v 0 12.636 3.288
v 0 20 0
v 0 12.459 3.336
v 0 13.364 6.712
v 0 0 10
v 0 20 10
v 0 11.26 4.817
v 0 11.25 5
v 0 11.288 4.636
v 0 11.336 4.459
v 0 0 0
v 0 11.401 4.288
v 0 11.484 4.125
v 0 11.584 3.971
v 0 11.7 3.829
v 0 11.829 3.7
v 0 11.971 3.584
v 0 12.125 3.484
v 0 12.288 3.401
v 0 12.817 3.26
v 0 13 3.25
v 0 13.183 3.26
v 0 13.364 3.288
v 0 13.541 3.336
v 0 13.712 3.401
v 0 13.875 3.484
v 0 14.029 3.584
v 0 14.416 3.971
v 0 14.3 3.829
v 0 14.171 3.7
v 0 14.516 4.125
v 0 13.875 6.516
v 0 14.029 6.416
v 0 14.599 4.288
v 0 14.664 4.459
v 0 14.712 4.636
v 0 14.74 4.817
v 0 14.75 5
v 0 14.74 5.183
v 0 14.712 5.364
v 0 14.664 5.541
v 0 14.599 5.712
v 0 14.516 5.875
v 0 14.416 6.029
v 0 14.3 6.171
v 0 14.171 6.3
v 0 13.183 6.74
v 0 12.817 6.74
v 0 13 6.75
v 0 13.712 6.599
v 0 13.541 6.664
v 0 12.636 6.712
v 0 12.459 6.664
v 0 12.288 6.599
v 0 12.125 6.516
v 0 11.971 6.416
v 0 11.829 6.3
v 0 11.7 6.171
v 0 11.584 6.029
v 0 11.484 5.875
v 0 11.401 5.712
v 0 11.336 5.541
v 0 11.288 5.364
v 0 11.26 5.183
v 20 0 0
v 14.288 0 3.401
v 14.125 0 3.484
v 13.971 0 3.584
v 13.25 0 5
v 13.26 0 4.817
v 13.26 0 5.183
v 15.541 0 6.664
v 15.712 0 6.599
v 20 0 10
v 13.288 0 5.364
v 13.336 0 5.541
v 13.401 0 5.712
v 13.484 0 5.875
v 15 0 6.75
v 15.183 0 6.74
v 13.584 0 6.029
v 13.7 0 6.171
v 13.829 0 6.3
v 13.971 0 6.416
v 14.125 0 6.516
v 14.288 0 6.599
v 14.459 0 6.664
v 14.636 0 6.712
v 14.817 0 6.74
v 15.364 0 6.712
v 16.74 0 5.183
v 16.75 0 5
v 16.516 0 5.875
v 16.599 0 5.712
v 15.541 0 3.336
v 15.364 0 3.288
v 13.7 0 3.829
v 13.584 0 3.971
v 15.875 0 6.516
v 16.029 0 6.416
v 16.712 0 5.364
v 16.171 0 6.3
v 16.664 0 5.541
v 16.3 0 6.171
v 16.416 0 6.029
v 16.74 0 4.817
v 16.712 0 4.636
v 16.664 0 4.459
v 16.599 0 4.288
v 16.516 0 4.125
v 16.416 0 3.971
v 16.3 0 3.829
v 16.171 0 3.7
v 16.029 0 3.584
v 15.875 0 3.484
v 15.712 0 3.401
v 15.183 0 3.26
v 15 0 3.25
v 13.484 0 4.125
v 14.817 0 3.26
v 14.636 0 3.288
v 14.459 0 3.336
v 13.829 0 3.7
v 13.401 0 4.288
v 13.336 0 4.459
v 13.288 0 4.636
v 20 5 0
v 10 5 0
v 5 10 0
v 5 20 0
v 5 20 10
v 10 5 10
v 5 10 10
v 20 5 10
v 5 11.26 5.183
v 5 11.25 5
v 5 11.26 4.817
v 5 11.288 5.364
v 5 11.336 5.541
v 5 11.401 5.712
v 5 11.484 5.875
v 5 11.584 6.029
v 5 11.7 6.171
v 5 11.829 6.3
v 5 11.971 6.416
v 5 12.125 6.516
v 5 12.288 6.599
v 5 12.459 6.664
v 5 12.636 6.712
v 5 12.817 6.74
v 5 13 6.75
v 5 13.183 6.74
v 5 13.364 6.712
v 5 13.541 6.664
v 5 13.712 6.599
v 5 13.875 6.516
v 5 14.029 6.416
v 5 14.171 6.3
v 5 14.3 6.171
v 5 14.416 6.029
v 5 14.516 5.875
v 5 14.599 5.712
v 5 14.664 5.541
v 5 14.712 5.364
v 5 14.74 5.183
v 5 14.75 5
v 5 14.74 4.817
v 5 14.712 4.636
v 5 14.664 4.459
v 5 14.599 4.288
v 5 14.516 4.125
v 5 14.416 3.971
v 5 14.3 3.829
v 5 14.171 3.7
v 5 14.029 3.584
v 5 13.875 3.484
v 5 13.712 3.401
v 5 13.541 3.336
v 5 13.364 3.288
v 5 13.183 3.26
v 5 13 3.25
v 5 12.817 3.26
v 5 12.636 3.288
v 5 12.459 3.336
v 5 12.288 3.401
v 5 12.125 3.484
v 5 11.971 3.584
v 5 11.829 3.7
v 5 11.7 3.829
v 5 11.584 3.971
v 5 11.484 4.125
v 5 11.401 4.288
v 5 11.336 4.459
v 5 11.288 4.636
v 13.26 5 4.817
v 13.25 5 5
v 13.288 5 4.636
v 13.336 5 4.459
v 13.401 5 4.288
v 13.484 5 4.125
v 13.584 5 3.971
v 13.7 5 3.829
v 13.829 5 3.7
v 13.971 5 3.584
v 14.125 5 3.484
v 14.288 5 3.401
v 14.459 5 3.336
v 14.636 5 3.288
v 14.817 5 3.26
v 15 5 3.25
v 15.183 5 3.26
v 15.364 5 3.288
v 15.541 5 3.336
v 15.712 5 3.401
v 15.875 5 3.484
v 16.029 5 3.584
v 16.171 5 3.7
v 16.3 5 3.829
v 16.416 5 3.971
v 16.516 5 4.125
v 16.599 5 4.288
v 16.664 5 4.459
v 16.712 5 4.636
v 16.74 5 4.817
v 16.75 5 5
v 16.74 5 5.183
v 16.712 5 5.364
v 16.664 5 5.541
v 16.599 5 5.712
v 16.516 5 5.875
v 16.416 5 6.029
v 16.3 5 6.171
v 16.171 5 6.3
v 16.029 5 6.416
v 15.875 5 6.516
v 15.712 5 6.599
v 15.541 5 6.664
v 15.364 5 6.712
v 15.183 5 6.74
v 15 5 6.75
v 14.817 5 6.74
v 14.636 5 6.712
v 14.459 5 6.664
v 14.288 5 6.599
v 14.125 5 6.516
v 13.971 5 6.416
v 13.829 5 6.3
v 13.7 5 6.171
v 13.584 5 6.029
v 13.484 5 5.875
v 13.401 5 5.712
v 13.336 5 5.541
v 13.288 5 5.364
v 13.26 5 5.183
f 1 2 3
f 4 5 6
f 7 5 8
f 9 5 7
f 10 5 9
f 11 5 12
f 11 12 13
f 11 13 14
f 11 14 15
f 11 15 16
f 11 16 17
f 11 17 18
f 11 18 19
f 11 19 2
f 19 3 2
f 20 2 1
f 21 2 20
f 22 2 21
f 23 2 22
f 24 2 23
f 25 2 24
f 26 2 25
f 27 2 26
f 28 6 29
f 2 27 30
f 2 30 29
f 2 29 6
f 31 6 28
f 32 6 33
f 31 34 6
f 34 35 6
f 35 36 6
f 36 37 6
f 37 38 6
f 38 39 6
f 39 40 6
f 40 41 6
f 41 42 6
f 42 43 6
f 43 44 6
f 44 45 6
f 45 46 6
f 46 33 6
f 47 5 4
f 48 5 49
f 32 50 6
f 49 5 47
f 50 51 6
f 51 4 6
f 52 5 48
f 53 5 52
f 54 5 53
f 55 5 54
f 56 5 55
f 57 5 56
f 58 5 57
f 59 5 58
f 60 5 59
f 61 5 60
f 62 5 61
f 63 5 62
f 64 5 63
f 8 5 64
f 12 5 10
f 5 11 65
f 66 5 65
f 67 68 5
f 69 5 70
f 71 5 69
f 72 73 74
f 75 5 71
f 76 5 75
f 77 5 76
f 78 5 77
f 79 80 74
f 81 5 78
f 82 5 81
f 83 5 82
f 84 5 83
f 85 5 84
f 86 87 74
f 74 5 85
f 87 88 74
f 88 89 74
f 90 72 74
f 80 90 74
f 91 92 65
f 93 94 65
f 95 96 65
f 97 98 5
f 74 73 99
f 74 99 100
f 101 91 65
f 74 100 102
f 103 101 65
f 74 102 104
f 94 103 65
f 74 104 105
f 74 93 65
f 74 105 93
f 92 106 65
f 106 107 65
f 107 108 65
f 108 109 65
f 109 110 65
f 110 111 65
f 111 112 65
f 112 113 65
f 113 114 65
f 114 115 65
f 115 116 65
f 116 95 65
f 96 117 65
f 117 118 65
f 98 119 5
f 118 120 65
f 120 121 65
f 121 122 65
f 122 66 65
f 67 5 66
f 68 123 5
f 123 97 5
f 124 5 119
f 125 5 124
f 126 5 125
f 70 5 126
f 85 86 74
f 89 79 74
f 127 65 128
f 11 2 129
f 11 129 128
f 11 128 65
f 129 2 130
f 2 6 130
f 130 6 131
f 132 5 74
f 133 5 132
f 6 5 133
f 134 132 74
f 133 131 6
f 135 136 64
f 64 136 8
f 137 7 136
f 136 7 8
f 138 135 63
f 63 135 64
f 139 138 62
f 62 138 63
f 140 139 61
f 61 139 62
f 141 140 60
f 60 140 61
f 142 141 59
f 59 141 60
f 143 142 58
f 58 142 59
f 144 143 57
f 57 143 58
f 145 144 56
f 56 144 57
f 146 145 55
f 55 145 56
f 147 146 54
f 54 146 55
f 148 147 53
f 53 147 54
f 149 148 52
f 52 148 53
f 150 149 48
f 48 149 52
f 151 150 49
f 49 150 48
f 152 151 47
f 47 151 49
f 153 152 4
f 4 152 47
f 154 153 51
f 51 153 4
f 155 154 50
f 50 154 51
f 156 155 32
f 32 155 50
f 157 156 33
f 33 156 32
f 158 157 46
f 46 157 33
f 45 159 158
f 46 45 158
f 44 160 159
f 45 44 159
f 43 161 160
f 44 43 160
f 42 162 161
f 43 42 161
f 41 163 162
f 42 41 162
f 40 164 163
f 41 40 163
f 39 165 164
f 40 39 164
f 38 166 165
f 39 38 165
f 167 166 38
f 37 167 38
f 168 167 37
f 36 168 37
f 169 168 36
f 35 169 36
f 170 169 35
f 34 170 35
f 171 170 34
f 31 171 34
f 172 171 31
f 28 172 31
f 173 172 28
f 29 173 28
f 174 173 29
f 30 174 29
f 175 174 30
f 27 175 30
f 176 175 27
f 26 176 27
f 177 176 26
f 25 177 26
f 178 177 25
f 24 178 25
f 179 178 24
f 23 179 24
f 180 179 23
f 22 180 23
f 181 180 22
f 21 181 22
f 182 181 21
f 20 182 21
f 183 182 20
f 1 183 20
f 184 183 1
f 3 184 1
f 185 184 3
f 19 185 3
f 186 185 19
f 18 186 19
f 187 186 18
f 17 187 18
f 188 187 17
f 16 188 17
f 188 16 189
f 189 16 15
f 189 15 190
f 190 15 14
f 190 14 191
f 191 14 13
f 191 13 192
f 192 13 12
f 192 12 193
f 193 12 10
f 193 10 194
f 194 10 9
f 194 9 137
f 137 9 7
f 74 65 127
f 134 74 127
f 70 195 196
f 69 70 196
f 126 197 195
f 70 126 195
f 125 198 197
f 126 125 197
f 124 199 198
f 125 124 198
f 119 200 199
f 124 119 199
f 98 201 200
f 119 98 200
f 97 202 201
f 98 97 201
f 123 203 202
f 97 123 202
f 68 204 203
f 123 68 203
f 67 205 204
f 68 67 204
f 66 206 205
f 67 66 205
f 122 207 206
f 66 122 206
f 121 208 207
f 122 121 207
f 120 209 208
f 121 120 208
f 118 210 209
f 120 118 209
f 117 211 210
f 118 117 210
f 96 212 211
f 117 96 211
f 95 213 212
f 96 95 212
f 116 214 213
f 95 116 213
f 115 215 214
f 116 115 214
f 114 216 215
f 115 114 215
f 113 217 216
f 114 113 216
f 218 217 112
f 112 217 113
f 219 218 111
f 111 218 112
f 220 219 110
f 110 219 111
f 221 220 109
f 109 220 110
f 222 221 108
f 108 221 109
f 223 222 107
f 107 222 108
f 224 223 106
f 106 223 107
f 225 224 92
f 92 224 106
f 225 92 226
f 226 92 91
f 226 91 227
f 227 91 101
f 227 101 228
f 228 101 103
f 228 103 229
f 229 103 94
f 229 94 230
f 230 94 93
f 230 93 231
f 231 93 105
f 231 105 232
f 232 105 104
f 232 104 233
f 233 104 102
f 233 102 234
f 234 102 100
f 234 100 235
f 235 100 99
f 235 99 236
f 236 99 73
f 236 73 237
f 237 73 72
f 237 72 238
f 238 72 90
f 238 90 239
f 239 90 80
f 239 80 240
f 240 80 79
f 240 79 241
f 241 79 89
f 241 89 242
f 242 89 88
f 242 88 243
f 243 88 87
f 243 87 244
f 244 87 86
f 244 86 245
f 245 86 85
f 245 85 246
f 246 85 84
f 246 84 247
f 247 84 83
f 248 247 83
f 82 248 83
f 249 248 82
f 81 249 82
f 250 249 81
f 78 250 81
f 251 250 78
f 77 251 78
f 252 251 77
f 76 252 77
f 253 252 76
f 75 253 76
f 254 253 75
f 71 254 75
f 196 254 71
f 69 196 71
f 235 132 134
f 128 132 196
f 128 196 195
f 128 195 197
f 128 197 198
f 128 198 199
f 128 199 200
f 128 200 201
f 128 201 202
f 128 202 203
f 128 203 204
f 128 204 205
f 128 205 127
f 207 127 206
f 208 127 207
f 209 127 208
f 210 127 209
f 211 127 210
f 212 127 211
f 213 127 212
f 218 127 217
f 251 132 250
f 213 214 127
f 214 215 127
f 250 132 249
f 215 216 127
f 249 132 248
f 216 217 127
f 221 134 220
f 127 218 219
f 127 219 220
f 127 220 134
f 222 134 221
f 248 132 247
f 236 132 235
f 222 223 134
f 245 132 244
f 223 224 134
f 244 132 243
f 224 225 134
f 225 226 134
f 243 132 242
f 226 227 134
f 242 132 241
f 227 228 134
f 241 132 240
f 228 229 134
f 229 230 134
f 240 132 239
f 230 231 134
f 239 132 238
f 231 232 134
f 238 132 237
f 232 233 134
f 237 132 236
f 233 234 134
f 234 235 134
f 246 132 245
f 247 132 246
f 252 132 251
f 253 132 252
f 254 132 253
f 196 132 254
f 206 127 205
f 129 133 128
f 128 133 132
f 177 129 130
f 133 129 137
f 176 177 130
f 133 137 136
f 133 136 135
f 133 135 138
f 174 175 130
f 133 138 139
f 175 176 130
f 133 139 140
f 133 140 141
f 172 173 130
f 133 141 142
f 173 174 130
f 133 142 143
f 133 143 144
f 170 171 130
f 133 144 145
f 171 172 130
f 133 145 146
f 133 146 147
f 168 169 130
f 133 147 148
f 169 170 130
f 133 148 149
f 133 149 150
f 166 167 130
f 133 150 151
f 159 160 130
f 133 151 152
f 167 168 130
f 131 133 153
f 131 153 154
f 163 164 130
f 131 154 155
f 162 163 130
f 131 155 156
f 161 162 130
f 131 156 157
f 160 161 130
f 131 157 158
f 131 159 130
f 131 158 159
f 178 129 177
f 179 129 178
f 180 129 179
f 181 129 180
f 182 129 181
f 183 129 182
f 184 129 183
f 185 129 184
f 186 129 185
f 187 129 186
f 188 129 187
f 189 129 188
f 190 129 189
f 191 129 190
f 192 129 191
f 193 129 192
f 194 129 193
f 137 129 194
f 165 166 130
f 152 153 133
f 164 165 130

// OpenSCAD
// file: functions.scad
// Mendel Dynamics
// Functions used in many files
// GNU GPL v3
// Emili Sapena 
// emili@bcndynamics.com
// bcndynamics.com
// http://wiki-es.bcndynamics.com/Mendel_Dynamics
// http://github.com/djemili/MendelDynamics
// http://www.reprap.org/wiki/Mendel_Dynamics

// Some functions from:
// Prusa Mendel
// GNU GPL v3
// Josef Průša
// josefprusa@me.com
// prusadjs.cz
// http://www.reprap.org/wiki/Prusa_Mendel
// http://github.com/prusajr/PrusaMendel


module nut(d,h,horizontal=true){
cornerdiameter =  (d / 2) / cos (180 / 6);
cylinder(h = h, r = cornerdiameter, $fn = 6);
if(horizontal){
for(i = [1:6]){
	rotate([0,0,60*i]) translate([-cornerdiameter-0.2,0,0]) rotate([0,0,-45]) cube(size = [2,2,h]);
}}
}

// Based on nophead research
module polyhole(d,h) {
    n = max(round(2 * d),3);
    rotate([0,0,180])
        cylinder(h = h, r = (d / 2) / cos (180 / n), $fn = n);
}




module roundcorner(diameter){
	difference(){
		cube(size = [diameter,diameter,99], center = false);
		translate(v = [diameter, diameter, 0]) cylinder(h = 100, r=diameter, center=true);
	}
}


module roundcorner(diameter){
	difference(){
		cube(size = [diameter,diameter,99], center = false);
		translate(v = [diameter, diameter, 0]) cylinder(h = 100, r=diameter, center=true, $fn=10);//no augmentar
	}
}

// This module creates the shape that needs to be substracted from a cube to make its corners rounded.
module MycreateMeniscus(h,radius,angle) 
difference(){
	translate([radius/2+0.1+30/2,radius/2+0.1,0]){
		cube([radius+0.2+30,radius+0.1+radius*sin(angle),h+0.2],center=true);         
	}
	
	cylinder(h=h+0.2,r=radius,$fn = 100,center=true);
}

//     __          __ 
//    |__|   ()   |__|
//
module Connection(sep=40)
union() {
	translate([-sep/2,0,(grosor+2)/2]) cube([10+0.1,grosor+0.1,grosor+2], center=true);
	translate([sep/2,0,(grosor+2)/2]) cube([10+0.1,grosor+0.1,grosor+2], center=true);
	cylinder(h=grosor+2, r=m3_diameter/2, $fn=fnfn);
}

// without m3 hole
//     __          __
//    |__|        |__|
//

module ConnectionNC(sep=40)
union() {
	translate([-sep/2,0,(grosor+2)/2]) cube([10+0.1,grosor+0.1,grosor+2], center=true);
	translate([sep/2,0,(grosor+2)/2]) cube([10+0.1,grosor+0.1,grosor+2], center=true);
}

//     __          __ 
//  __|  |________|  |__
//           
module ConnectionOut(sep=40)
union() {
	translate([-sep/2,grosor/2,grosor/2]) cube([10,grosor,grosor], center=true);
	translate([sep/2,grosor/2,grosor/2]) cube([10,grosor,grosor], center=true);
}

//     __          __ 
//  __|  |___  ___|  |__
//           ||           
//           ++

module BoltHole(canal=true)
union() {
	if (canal) {
		translate([0,-5,(grosor+2)/2-1]) cube([m3_diameter,21,grosor+2], center=true);
	}
	translate([0,-10,(grosor+2)/2-1]) cube([m3_nut_diameter_horizontal,3,grosor+2], center=true);
}


module M3hole(hex=0) {
	
	if (hex) {
		cylinder(h=grosor+2,r=m3_nut_diameter_horizontal/2+0.5, $fn=6);
	}
	else {
		cylinder(h=grosor+2,r=m3_diameter/2, $fn=fnfn);
	}
}

//Hole for Bearing 608
module b608(h=8)
{
	translate([0,0,h/2]) cylinder(r=hole_for_608/2,h=h,center=true,$fn=fnfn);
}


module M8hole(h=8)
{
	translate([0,0,h/2]) cylinder(r=m8_hole/2,h=h,center=true,$fn=fnfn);
}

module motor()
{
	union() {
		cube([l_motor,a_motor,a_motor]);
		translate([-20,a_motor/2,a_motor/2])
		rotate([0,90,0]) cylinder(h=20,r=2.5);
	}
}

// nema 17 holes
module MotorHoles()
{
	translate([motor_h_sep/2, motor_h_sep/2, 0]) M3hole();
	translate([motor_h_sep/2, -motor_h_sep/2, 0]) M3hole();
	translate([-motor_h_sep/2, motor_h_sep/2, 0]) M3hole();
	translate([-motor_h_sep/2, -motor_h_sep/2, 0]) M3hole();
	translate(v=[0,0,0]) cylinder(r=26/2, h=grosor+2, $fn=fnfn);
}
// file: constants.scad
// Mendel Dynamics
// Constant values used in many files
// GNU GPL v3
// Emili Sapena 
// emili@bcndynamics.com
// bcndynamics.com
// http://wiki-es.bcndynamics.com/Mendel_Dynamics
// http://github.com/djemili/MendelDynamics
// http://www.reprap.org/wiki/Mendel_Dynamics

//DEBUG
//fnfn=10;

//RENDER
fnfn=60;


// Plates' thickness
grosor=5;

threaded_rod_diameter = 8.7;
m3_diameter = 3.6;
m3_nut_diameter = 5.3;
m3_nut_diameter_horizontal = 6.1;

m8_clearance_hole=8.8;
m8_hole=8.4;
hole_for_608=22.3;
608_diameter=22;
pulley_diameter=10; //TODO

hole_separation=58.5; //from Prusa's frame vertex
xbars_separation=50;
hotend_hole_sep=30;
xventilador=10; //TODO
l_motor=50; // 47 mesurat per mi! deixem 50 per si hi ha motors mes llargs
a_motor=42.4; //mesurat per mi!
motor_h_sep=31;

pla_diam=3;
teflon_diam=16.3;

bushing_holes_dist=28;
rod_clamp_holes_dist=15;
belt_clamp_holes_dist=18;

//Recheck these values:
ramps_holes_a=48;
ramps_holes_b=82.5;
ramps_holes_c=75;

lme8uu=false;
lm8uu_diameter=(lme8uu==true) ? 16 : 15;
lm8uu_length=(lme8uu==true) ? 25 : 24;
lm8uu_radius = lm8uu_diameter / 2;
block_height = 2*lm8uu_length+17;

//==================================


// Triangles
marge_llarg=75;
marge_curt=10;
lateral=320+marge_llarg*2;
altura=lateral*sin(60);

//y_off=7*8.65;
y_off=60;
ample_z=100;
marge_z=20;
offset_z=20; //eleva inici del forat eix z
altura_z=(lateral-(ample_z/2+marge_z)/cos(60))*sin(60)-marge_z-offset_z;


// Lamines base i frontal

llarg_base=234;
curt_base=80;
llarg_front=llarg_base+40;

// Safata
distC_safata=210;
distV_safata=140;
distB_safata=40;
dist_belt=18;
ample_safata=220;
llarg_safata=220;
dist_bushing=28;

ample_total=410; //distancia entre centres de varilles llises Z
// z_motor
llarg_zm=(ample_total-llarg_base-grosor*2)/2 + 20;
//llarg_zm=100;
ample_zm=hole_separation+m8_clearance_hole*2+10;
zdist=30;

//extruder
x_motor_ex=xventilador+10+hotend_hole_sep/2+10;
y_motor_ex=10;
hotend_rotation=90; 
llarg_ex=xventilador+hotend_hole_sep+l_motor+30;
ample_ex=xbars_separation+m8_clearance_hole*2+10;

//xend
ample_xe=ample_ex;
llarg_xe=zdist+40;


//y motor
llarg_ym=hole_separation+threaded_rod_diameter+20;

//alt
ample_ym=a_motor+10;

//x carriage
llarg_xc=105;
ample_xc=xbars_separation+bushing_holes_dist+10;
// file: metric.scad
// PRUSA iteration3
// Default metric sizes
// GNU GPL v3
// Josef Průša <josefprusa@me.com>
// http://www.reprap.org/wiki/Prusa_Mendel
// http://github.com/prusajr/PrusaMendel

// DONT CHANGE THIS FILE! ALTER VALUES IN CONFIGURATION.SCAD INSTEAD

// RODS

threaded_rod_diameter = 8.7;
threaded_rod_diameter_horizontal = 9;
smooth_bar_diameter = 8;
smooth_bar_diameter_horizontal = 8.5;
smooth_big_bar_diameter_horizontal = 10.8;

// Nuts and bolts


m8_diameter = 9;
//iso4032 says Width across corners = 14.38
m8_nut_diameter = 14.1;

m4_diameter = 4.7;
//iso4032 says 7.66
m4_nut_diameter = 7.6;
m4_nut_diameter_horizontal = 8.15;

m3_diameter = 3.4;
//iso4032 says 6.01
m3_nut_diameter = 5.3;
m3_nut_diameter_horizontal = 6.8;
m3_washer_diameter = 6.9;

// Motors

motor_shaft = 5.5;
// file: configuration.scad
// PRUSA Mendel  
// Configuration file
// GNU GPL v3
// Josef Průša
// josefprusa@me.com
// prusadjs.cz
// http://www.reprap.org/wiki/Prusa_Mendel
// http://github.com/prusajr/PrusaMendel

// PLEASE SELECT ONE OF THE CONFIGURATIONS BELOW
// BY UN-COMMENTING IT

// Uncomment for metric settings
// METRIC METRIC METRIC METRIC METRIC METRIC METRIC METRIC 

include <metric.scad>;
include <constants.scad>

// CUSTOM CUSTOM CUSTOM CUSTOM CUSTOM CUSTOM CUSTOM CUSTOM CUSTOM

thin_wall = 3;


// Linear bearing version
linear = false;
// set false for LM-8UU, true for LM-E-8UU (ignore if linear is set to false)
lme8uu = false;



// CHANGE ONLY THE STUFF YOU KNOW
// IT WILL REPLACE DEFAULT SETTING

// RODS

// threaded_rod_diameter = 0;
// threaded_rod_diameter_horizontal = 0;
// smooth_bar_diameter = 0;
// smooth_bar_diameter_horizontal = 0;

// Nuts and bolts

// m8_diameter = 0;
// m8_nut_diameter = 0;

// m4_diameter = 0;
// m4_nut_diameter = 0;

// m3_diameter = 0;
// m3_nut_diameter = 0;

// Bushing holder

// bushing_core_diameter = smooth_bar_diameter;
// bushing_material_thickness = 0;


///counted stuff
m3_nut_diameter_bigger = ((m3_nut_diameter  / 2) / cos (180 / 6))*2;

// functions 
include <functions.scad>
// main file
// Mendel Dynamics
// Printable corner to join x-end plates
// GNU GPL v3
// Emili Sapena 
// emili@bcndynamics.com
// bcndynamics.com
// http://wiki-es.bcndynamics.com/Mendel_Dynamics
// http://github.com/djemili/MendelDynamics
// http://www.reprap.org/wiki/Mendel_Dynamics


include <configuration.scad>

/**
 * @id corner
 * @name Corner
 * @category Printed
 * @using 2 m3nut
 * @using 4 m3washer
 * @using 2 m3x12bolt
 */ 


module corner() {
	difference() {
	union() {
		cube([20,5,10]);
		cube([5,20,10]);
polyhedron( points = [[0,0,0], [15,0,0], [0,15,0], [0,0,10], [15,0,10], [0,15,10]], triangles = [[0,3,1], [3,4,1], [4,2,1], [4,5,2], [5,3,0],[0,2,5],[0,1,2],[5,4,3]]);
	}
	translate([15,6,5]) rotate([90,0,0])  cylinder(h=10, r=3.5/2, $fn=fnfn);
     translate([-1,13,5]) rotate([0,90,0])  cylinder(h=10, r=3.5/2, $fn=fnfn);
	}
}

corner();
